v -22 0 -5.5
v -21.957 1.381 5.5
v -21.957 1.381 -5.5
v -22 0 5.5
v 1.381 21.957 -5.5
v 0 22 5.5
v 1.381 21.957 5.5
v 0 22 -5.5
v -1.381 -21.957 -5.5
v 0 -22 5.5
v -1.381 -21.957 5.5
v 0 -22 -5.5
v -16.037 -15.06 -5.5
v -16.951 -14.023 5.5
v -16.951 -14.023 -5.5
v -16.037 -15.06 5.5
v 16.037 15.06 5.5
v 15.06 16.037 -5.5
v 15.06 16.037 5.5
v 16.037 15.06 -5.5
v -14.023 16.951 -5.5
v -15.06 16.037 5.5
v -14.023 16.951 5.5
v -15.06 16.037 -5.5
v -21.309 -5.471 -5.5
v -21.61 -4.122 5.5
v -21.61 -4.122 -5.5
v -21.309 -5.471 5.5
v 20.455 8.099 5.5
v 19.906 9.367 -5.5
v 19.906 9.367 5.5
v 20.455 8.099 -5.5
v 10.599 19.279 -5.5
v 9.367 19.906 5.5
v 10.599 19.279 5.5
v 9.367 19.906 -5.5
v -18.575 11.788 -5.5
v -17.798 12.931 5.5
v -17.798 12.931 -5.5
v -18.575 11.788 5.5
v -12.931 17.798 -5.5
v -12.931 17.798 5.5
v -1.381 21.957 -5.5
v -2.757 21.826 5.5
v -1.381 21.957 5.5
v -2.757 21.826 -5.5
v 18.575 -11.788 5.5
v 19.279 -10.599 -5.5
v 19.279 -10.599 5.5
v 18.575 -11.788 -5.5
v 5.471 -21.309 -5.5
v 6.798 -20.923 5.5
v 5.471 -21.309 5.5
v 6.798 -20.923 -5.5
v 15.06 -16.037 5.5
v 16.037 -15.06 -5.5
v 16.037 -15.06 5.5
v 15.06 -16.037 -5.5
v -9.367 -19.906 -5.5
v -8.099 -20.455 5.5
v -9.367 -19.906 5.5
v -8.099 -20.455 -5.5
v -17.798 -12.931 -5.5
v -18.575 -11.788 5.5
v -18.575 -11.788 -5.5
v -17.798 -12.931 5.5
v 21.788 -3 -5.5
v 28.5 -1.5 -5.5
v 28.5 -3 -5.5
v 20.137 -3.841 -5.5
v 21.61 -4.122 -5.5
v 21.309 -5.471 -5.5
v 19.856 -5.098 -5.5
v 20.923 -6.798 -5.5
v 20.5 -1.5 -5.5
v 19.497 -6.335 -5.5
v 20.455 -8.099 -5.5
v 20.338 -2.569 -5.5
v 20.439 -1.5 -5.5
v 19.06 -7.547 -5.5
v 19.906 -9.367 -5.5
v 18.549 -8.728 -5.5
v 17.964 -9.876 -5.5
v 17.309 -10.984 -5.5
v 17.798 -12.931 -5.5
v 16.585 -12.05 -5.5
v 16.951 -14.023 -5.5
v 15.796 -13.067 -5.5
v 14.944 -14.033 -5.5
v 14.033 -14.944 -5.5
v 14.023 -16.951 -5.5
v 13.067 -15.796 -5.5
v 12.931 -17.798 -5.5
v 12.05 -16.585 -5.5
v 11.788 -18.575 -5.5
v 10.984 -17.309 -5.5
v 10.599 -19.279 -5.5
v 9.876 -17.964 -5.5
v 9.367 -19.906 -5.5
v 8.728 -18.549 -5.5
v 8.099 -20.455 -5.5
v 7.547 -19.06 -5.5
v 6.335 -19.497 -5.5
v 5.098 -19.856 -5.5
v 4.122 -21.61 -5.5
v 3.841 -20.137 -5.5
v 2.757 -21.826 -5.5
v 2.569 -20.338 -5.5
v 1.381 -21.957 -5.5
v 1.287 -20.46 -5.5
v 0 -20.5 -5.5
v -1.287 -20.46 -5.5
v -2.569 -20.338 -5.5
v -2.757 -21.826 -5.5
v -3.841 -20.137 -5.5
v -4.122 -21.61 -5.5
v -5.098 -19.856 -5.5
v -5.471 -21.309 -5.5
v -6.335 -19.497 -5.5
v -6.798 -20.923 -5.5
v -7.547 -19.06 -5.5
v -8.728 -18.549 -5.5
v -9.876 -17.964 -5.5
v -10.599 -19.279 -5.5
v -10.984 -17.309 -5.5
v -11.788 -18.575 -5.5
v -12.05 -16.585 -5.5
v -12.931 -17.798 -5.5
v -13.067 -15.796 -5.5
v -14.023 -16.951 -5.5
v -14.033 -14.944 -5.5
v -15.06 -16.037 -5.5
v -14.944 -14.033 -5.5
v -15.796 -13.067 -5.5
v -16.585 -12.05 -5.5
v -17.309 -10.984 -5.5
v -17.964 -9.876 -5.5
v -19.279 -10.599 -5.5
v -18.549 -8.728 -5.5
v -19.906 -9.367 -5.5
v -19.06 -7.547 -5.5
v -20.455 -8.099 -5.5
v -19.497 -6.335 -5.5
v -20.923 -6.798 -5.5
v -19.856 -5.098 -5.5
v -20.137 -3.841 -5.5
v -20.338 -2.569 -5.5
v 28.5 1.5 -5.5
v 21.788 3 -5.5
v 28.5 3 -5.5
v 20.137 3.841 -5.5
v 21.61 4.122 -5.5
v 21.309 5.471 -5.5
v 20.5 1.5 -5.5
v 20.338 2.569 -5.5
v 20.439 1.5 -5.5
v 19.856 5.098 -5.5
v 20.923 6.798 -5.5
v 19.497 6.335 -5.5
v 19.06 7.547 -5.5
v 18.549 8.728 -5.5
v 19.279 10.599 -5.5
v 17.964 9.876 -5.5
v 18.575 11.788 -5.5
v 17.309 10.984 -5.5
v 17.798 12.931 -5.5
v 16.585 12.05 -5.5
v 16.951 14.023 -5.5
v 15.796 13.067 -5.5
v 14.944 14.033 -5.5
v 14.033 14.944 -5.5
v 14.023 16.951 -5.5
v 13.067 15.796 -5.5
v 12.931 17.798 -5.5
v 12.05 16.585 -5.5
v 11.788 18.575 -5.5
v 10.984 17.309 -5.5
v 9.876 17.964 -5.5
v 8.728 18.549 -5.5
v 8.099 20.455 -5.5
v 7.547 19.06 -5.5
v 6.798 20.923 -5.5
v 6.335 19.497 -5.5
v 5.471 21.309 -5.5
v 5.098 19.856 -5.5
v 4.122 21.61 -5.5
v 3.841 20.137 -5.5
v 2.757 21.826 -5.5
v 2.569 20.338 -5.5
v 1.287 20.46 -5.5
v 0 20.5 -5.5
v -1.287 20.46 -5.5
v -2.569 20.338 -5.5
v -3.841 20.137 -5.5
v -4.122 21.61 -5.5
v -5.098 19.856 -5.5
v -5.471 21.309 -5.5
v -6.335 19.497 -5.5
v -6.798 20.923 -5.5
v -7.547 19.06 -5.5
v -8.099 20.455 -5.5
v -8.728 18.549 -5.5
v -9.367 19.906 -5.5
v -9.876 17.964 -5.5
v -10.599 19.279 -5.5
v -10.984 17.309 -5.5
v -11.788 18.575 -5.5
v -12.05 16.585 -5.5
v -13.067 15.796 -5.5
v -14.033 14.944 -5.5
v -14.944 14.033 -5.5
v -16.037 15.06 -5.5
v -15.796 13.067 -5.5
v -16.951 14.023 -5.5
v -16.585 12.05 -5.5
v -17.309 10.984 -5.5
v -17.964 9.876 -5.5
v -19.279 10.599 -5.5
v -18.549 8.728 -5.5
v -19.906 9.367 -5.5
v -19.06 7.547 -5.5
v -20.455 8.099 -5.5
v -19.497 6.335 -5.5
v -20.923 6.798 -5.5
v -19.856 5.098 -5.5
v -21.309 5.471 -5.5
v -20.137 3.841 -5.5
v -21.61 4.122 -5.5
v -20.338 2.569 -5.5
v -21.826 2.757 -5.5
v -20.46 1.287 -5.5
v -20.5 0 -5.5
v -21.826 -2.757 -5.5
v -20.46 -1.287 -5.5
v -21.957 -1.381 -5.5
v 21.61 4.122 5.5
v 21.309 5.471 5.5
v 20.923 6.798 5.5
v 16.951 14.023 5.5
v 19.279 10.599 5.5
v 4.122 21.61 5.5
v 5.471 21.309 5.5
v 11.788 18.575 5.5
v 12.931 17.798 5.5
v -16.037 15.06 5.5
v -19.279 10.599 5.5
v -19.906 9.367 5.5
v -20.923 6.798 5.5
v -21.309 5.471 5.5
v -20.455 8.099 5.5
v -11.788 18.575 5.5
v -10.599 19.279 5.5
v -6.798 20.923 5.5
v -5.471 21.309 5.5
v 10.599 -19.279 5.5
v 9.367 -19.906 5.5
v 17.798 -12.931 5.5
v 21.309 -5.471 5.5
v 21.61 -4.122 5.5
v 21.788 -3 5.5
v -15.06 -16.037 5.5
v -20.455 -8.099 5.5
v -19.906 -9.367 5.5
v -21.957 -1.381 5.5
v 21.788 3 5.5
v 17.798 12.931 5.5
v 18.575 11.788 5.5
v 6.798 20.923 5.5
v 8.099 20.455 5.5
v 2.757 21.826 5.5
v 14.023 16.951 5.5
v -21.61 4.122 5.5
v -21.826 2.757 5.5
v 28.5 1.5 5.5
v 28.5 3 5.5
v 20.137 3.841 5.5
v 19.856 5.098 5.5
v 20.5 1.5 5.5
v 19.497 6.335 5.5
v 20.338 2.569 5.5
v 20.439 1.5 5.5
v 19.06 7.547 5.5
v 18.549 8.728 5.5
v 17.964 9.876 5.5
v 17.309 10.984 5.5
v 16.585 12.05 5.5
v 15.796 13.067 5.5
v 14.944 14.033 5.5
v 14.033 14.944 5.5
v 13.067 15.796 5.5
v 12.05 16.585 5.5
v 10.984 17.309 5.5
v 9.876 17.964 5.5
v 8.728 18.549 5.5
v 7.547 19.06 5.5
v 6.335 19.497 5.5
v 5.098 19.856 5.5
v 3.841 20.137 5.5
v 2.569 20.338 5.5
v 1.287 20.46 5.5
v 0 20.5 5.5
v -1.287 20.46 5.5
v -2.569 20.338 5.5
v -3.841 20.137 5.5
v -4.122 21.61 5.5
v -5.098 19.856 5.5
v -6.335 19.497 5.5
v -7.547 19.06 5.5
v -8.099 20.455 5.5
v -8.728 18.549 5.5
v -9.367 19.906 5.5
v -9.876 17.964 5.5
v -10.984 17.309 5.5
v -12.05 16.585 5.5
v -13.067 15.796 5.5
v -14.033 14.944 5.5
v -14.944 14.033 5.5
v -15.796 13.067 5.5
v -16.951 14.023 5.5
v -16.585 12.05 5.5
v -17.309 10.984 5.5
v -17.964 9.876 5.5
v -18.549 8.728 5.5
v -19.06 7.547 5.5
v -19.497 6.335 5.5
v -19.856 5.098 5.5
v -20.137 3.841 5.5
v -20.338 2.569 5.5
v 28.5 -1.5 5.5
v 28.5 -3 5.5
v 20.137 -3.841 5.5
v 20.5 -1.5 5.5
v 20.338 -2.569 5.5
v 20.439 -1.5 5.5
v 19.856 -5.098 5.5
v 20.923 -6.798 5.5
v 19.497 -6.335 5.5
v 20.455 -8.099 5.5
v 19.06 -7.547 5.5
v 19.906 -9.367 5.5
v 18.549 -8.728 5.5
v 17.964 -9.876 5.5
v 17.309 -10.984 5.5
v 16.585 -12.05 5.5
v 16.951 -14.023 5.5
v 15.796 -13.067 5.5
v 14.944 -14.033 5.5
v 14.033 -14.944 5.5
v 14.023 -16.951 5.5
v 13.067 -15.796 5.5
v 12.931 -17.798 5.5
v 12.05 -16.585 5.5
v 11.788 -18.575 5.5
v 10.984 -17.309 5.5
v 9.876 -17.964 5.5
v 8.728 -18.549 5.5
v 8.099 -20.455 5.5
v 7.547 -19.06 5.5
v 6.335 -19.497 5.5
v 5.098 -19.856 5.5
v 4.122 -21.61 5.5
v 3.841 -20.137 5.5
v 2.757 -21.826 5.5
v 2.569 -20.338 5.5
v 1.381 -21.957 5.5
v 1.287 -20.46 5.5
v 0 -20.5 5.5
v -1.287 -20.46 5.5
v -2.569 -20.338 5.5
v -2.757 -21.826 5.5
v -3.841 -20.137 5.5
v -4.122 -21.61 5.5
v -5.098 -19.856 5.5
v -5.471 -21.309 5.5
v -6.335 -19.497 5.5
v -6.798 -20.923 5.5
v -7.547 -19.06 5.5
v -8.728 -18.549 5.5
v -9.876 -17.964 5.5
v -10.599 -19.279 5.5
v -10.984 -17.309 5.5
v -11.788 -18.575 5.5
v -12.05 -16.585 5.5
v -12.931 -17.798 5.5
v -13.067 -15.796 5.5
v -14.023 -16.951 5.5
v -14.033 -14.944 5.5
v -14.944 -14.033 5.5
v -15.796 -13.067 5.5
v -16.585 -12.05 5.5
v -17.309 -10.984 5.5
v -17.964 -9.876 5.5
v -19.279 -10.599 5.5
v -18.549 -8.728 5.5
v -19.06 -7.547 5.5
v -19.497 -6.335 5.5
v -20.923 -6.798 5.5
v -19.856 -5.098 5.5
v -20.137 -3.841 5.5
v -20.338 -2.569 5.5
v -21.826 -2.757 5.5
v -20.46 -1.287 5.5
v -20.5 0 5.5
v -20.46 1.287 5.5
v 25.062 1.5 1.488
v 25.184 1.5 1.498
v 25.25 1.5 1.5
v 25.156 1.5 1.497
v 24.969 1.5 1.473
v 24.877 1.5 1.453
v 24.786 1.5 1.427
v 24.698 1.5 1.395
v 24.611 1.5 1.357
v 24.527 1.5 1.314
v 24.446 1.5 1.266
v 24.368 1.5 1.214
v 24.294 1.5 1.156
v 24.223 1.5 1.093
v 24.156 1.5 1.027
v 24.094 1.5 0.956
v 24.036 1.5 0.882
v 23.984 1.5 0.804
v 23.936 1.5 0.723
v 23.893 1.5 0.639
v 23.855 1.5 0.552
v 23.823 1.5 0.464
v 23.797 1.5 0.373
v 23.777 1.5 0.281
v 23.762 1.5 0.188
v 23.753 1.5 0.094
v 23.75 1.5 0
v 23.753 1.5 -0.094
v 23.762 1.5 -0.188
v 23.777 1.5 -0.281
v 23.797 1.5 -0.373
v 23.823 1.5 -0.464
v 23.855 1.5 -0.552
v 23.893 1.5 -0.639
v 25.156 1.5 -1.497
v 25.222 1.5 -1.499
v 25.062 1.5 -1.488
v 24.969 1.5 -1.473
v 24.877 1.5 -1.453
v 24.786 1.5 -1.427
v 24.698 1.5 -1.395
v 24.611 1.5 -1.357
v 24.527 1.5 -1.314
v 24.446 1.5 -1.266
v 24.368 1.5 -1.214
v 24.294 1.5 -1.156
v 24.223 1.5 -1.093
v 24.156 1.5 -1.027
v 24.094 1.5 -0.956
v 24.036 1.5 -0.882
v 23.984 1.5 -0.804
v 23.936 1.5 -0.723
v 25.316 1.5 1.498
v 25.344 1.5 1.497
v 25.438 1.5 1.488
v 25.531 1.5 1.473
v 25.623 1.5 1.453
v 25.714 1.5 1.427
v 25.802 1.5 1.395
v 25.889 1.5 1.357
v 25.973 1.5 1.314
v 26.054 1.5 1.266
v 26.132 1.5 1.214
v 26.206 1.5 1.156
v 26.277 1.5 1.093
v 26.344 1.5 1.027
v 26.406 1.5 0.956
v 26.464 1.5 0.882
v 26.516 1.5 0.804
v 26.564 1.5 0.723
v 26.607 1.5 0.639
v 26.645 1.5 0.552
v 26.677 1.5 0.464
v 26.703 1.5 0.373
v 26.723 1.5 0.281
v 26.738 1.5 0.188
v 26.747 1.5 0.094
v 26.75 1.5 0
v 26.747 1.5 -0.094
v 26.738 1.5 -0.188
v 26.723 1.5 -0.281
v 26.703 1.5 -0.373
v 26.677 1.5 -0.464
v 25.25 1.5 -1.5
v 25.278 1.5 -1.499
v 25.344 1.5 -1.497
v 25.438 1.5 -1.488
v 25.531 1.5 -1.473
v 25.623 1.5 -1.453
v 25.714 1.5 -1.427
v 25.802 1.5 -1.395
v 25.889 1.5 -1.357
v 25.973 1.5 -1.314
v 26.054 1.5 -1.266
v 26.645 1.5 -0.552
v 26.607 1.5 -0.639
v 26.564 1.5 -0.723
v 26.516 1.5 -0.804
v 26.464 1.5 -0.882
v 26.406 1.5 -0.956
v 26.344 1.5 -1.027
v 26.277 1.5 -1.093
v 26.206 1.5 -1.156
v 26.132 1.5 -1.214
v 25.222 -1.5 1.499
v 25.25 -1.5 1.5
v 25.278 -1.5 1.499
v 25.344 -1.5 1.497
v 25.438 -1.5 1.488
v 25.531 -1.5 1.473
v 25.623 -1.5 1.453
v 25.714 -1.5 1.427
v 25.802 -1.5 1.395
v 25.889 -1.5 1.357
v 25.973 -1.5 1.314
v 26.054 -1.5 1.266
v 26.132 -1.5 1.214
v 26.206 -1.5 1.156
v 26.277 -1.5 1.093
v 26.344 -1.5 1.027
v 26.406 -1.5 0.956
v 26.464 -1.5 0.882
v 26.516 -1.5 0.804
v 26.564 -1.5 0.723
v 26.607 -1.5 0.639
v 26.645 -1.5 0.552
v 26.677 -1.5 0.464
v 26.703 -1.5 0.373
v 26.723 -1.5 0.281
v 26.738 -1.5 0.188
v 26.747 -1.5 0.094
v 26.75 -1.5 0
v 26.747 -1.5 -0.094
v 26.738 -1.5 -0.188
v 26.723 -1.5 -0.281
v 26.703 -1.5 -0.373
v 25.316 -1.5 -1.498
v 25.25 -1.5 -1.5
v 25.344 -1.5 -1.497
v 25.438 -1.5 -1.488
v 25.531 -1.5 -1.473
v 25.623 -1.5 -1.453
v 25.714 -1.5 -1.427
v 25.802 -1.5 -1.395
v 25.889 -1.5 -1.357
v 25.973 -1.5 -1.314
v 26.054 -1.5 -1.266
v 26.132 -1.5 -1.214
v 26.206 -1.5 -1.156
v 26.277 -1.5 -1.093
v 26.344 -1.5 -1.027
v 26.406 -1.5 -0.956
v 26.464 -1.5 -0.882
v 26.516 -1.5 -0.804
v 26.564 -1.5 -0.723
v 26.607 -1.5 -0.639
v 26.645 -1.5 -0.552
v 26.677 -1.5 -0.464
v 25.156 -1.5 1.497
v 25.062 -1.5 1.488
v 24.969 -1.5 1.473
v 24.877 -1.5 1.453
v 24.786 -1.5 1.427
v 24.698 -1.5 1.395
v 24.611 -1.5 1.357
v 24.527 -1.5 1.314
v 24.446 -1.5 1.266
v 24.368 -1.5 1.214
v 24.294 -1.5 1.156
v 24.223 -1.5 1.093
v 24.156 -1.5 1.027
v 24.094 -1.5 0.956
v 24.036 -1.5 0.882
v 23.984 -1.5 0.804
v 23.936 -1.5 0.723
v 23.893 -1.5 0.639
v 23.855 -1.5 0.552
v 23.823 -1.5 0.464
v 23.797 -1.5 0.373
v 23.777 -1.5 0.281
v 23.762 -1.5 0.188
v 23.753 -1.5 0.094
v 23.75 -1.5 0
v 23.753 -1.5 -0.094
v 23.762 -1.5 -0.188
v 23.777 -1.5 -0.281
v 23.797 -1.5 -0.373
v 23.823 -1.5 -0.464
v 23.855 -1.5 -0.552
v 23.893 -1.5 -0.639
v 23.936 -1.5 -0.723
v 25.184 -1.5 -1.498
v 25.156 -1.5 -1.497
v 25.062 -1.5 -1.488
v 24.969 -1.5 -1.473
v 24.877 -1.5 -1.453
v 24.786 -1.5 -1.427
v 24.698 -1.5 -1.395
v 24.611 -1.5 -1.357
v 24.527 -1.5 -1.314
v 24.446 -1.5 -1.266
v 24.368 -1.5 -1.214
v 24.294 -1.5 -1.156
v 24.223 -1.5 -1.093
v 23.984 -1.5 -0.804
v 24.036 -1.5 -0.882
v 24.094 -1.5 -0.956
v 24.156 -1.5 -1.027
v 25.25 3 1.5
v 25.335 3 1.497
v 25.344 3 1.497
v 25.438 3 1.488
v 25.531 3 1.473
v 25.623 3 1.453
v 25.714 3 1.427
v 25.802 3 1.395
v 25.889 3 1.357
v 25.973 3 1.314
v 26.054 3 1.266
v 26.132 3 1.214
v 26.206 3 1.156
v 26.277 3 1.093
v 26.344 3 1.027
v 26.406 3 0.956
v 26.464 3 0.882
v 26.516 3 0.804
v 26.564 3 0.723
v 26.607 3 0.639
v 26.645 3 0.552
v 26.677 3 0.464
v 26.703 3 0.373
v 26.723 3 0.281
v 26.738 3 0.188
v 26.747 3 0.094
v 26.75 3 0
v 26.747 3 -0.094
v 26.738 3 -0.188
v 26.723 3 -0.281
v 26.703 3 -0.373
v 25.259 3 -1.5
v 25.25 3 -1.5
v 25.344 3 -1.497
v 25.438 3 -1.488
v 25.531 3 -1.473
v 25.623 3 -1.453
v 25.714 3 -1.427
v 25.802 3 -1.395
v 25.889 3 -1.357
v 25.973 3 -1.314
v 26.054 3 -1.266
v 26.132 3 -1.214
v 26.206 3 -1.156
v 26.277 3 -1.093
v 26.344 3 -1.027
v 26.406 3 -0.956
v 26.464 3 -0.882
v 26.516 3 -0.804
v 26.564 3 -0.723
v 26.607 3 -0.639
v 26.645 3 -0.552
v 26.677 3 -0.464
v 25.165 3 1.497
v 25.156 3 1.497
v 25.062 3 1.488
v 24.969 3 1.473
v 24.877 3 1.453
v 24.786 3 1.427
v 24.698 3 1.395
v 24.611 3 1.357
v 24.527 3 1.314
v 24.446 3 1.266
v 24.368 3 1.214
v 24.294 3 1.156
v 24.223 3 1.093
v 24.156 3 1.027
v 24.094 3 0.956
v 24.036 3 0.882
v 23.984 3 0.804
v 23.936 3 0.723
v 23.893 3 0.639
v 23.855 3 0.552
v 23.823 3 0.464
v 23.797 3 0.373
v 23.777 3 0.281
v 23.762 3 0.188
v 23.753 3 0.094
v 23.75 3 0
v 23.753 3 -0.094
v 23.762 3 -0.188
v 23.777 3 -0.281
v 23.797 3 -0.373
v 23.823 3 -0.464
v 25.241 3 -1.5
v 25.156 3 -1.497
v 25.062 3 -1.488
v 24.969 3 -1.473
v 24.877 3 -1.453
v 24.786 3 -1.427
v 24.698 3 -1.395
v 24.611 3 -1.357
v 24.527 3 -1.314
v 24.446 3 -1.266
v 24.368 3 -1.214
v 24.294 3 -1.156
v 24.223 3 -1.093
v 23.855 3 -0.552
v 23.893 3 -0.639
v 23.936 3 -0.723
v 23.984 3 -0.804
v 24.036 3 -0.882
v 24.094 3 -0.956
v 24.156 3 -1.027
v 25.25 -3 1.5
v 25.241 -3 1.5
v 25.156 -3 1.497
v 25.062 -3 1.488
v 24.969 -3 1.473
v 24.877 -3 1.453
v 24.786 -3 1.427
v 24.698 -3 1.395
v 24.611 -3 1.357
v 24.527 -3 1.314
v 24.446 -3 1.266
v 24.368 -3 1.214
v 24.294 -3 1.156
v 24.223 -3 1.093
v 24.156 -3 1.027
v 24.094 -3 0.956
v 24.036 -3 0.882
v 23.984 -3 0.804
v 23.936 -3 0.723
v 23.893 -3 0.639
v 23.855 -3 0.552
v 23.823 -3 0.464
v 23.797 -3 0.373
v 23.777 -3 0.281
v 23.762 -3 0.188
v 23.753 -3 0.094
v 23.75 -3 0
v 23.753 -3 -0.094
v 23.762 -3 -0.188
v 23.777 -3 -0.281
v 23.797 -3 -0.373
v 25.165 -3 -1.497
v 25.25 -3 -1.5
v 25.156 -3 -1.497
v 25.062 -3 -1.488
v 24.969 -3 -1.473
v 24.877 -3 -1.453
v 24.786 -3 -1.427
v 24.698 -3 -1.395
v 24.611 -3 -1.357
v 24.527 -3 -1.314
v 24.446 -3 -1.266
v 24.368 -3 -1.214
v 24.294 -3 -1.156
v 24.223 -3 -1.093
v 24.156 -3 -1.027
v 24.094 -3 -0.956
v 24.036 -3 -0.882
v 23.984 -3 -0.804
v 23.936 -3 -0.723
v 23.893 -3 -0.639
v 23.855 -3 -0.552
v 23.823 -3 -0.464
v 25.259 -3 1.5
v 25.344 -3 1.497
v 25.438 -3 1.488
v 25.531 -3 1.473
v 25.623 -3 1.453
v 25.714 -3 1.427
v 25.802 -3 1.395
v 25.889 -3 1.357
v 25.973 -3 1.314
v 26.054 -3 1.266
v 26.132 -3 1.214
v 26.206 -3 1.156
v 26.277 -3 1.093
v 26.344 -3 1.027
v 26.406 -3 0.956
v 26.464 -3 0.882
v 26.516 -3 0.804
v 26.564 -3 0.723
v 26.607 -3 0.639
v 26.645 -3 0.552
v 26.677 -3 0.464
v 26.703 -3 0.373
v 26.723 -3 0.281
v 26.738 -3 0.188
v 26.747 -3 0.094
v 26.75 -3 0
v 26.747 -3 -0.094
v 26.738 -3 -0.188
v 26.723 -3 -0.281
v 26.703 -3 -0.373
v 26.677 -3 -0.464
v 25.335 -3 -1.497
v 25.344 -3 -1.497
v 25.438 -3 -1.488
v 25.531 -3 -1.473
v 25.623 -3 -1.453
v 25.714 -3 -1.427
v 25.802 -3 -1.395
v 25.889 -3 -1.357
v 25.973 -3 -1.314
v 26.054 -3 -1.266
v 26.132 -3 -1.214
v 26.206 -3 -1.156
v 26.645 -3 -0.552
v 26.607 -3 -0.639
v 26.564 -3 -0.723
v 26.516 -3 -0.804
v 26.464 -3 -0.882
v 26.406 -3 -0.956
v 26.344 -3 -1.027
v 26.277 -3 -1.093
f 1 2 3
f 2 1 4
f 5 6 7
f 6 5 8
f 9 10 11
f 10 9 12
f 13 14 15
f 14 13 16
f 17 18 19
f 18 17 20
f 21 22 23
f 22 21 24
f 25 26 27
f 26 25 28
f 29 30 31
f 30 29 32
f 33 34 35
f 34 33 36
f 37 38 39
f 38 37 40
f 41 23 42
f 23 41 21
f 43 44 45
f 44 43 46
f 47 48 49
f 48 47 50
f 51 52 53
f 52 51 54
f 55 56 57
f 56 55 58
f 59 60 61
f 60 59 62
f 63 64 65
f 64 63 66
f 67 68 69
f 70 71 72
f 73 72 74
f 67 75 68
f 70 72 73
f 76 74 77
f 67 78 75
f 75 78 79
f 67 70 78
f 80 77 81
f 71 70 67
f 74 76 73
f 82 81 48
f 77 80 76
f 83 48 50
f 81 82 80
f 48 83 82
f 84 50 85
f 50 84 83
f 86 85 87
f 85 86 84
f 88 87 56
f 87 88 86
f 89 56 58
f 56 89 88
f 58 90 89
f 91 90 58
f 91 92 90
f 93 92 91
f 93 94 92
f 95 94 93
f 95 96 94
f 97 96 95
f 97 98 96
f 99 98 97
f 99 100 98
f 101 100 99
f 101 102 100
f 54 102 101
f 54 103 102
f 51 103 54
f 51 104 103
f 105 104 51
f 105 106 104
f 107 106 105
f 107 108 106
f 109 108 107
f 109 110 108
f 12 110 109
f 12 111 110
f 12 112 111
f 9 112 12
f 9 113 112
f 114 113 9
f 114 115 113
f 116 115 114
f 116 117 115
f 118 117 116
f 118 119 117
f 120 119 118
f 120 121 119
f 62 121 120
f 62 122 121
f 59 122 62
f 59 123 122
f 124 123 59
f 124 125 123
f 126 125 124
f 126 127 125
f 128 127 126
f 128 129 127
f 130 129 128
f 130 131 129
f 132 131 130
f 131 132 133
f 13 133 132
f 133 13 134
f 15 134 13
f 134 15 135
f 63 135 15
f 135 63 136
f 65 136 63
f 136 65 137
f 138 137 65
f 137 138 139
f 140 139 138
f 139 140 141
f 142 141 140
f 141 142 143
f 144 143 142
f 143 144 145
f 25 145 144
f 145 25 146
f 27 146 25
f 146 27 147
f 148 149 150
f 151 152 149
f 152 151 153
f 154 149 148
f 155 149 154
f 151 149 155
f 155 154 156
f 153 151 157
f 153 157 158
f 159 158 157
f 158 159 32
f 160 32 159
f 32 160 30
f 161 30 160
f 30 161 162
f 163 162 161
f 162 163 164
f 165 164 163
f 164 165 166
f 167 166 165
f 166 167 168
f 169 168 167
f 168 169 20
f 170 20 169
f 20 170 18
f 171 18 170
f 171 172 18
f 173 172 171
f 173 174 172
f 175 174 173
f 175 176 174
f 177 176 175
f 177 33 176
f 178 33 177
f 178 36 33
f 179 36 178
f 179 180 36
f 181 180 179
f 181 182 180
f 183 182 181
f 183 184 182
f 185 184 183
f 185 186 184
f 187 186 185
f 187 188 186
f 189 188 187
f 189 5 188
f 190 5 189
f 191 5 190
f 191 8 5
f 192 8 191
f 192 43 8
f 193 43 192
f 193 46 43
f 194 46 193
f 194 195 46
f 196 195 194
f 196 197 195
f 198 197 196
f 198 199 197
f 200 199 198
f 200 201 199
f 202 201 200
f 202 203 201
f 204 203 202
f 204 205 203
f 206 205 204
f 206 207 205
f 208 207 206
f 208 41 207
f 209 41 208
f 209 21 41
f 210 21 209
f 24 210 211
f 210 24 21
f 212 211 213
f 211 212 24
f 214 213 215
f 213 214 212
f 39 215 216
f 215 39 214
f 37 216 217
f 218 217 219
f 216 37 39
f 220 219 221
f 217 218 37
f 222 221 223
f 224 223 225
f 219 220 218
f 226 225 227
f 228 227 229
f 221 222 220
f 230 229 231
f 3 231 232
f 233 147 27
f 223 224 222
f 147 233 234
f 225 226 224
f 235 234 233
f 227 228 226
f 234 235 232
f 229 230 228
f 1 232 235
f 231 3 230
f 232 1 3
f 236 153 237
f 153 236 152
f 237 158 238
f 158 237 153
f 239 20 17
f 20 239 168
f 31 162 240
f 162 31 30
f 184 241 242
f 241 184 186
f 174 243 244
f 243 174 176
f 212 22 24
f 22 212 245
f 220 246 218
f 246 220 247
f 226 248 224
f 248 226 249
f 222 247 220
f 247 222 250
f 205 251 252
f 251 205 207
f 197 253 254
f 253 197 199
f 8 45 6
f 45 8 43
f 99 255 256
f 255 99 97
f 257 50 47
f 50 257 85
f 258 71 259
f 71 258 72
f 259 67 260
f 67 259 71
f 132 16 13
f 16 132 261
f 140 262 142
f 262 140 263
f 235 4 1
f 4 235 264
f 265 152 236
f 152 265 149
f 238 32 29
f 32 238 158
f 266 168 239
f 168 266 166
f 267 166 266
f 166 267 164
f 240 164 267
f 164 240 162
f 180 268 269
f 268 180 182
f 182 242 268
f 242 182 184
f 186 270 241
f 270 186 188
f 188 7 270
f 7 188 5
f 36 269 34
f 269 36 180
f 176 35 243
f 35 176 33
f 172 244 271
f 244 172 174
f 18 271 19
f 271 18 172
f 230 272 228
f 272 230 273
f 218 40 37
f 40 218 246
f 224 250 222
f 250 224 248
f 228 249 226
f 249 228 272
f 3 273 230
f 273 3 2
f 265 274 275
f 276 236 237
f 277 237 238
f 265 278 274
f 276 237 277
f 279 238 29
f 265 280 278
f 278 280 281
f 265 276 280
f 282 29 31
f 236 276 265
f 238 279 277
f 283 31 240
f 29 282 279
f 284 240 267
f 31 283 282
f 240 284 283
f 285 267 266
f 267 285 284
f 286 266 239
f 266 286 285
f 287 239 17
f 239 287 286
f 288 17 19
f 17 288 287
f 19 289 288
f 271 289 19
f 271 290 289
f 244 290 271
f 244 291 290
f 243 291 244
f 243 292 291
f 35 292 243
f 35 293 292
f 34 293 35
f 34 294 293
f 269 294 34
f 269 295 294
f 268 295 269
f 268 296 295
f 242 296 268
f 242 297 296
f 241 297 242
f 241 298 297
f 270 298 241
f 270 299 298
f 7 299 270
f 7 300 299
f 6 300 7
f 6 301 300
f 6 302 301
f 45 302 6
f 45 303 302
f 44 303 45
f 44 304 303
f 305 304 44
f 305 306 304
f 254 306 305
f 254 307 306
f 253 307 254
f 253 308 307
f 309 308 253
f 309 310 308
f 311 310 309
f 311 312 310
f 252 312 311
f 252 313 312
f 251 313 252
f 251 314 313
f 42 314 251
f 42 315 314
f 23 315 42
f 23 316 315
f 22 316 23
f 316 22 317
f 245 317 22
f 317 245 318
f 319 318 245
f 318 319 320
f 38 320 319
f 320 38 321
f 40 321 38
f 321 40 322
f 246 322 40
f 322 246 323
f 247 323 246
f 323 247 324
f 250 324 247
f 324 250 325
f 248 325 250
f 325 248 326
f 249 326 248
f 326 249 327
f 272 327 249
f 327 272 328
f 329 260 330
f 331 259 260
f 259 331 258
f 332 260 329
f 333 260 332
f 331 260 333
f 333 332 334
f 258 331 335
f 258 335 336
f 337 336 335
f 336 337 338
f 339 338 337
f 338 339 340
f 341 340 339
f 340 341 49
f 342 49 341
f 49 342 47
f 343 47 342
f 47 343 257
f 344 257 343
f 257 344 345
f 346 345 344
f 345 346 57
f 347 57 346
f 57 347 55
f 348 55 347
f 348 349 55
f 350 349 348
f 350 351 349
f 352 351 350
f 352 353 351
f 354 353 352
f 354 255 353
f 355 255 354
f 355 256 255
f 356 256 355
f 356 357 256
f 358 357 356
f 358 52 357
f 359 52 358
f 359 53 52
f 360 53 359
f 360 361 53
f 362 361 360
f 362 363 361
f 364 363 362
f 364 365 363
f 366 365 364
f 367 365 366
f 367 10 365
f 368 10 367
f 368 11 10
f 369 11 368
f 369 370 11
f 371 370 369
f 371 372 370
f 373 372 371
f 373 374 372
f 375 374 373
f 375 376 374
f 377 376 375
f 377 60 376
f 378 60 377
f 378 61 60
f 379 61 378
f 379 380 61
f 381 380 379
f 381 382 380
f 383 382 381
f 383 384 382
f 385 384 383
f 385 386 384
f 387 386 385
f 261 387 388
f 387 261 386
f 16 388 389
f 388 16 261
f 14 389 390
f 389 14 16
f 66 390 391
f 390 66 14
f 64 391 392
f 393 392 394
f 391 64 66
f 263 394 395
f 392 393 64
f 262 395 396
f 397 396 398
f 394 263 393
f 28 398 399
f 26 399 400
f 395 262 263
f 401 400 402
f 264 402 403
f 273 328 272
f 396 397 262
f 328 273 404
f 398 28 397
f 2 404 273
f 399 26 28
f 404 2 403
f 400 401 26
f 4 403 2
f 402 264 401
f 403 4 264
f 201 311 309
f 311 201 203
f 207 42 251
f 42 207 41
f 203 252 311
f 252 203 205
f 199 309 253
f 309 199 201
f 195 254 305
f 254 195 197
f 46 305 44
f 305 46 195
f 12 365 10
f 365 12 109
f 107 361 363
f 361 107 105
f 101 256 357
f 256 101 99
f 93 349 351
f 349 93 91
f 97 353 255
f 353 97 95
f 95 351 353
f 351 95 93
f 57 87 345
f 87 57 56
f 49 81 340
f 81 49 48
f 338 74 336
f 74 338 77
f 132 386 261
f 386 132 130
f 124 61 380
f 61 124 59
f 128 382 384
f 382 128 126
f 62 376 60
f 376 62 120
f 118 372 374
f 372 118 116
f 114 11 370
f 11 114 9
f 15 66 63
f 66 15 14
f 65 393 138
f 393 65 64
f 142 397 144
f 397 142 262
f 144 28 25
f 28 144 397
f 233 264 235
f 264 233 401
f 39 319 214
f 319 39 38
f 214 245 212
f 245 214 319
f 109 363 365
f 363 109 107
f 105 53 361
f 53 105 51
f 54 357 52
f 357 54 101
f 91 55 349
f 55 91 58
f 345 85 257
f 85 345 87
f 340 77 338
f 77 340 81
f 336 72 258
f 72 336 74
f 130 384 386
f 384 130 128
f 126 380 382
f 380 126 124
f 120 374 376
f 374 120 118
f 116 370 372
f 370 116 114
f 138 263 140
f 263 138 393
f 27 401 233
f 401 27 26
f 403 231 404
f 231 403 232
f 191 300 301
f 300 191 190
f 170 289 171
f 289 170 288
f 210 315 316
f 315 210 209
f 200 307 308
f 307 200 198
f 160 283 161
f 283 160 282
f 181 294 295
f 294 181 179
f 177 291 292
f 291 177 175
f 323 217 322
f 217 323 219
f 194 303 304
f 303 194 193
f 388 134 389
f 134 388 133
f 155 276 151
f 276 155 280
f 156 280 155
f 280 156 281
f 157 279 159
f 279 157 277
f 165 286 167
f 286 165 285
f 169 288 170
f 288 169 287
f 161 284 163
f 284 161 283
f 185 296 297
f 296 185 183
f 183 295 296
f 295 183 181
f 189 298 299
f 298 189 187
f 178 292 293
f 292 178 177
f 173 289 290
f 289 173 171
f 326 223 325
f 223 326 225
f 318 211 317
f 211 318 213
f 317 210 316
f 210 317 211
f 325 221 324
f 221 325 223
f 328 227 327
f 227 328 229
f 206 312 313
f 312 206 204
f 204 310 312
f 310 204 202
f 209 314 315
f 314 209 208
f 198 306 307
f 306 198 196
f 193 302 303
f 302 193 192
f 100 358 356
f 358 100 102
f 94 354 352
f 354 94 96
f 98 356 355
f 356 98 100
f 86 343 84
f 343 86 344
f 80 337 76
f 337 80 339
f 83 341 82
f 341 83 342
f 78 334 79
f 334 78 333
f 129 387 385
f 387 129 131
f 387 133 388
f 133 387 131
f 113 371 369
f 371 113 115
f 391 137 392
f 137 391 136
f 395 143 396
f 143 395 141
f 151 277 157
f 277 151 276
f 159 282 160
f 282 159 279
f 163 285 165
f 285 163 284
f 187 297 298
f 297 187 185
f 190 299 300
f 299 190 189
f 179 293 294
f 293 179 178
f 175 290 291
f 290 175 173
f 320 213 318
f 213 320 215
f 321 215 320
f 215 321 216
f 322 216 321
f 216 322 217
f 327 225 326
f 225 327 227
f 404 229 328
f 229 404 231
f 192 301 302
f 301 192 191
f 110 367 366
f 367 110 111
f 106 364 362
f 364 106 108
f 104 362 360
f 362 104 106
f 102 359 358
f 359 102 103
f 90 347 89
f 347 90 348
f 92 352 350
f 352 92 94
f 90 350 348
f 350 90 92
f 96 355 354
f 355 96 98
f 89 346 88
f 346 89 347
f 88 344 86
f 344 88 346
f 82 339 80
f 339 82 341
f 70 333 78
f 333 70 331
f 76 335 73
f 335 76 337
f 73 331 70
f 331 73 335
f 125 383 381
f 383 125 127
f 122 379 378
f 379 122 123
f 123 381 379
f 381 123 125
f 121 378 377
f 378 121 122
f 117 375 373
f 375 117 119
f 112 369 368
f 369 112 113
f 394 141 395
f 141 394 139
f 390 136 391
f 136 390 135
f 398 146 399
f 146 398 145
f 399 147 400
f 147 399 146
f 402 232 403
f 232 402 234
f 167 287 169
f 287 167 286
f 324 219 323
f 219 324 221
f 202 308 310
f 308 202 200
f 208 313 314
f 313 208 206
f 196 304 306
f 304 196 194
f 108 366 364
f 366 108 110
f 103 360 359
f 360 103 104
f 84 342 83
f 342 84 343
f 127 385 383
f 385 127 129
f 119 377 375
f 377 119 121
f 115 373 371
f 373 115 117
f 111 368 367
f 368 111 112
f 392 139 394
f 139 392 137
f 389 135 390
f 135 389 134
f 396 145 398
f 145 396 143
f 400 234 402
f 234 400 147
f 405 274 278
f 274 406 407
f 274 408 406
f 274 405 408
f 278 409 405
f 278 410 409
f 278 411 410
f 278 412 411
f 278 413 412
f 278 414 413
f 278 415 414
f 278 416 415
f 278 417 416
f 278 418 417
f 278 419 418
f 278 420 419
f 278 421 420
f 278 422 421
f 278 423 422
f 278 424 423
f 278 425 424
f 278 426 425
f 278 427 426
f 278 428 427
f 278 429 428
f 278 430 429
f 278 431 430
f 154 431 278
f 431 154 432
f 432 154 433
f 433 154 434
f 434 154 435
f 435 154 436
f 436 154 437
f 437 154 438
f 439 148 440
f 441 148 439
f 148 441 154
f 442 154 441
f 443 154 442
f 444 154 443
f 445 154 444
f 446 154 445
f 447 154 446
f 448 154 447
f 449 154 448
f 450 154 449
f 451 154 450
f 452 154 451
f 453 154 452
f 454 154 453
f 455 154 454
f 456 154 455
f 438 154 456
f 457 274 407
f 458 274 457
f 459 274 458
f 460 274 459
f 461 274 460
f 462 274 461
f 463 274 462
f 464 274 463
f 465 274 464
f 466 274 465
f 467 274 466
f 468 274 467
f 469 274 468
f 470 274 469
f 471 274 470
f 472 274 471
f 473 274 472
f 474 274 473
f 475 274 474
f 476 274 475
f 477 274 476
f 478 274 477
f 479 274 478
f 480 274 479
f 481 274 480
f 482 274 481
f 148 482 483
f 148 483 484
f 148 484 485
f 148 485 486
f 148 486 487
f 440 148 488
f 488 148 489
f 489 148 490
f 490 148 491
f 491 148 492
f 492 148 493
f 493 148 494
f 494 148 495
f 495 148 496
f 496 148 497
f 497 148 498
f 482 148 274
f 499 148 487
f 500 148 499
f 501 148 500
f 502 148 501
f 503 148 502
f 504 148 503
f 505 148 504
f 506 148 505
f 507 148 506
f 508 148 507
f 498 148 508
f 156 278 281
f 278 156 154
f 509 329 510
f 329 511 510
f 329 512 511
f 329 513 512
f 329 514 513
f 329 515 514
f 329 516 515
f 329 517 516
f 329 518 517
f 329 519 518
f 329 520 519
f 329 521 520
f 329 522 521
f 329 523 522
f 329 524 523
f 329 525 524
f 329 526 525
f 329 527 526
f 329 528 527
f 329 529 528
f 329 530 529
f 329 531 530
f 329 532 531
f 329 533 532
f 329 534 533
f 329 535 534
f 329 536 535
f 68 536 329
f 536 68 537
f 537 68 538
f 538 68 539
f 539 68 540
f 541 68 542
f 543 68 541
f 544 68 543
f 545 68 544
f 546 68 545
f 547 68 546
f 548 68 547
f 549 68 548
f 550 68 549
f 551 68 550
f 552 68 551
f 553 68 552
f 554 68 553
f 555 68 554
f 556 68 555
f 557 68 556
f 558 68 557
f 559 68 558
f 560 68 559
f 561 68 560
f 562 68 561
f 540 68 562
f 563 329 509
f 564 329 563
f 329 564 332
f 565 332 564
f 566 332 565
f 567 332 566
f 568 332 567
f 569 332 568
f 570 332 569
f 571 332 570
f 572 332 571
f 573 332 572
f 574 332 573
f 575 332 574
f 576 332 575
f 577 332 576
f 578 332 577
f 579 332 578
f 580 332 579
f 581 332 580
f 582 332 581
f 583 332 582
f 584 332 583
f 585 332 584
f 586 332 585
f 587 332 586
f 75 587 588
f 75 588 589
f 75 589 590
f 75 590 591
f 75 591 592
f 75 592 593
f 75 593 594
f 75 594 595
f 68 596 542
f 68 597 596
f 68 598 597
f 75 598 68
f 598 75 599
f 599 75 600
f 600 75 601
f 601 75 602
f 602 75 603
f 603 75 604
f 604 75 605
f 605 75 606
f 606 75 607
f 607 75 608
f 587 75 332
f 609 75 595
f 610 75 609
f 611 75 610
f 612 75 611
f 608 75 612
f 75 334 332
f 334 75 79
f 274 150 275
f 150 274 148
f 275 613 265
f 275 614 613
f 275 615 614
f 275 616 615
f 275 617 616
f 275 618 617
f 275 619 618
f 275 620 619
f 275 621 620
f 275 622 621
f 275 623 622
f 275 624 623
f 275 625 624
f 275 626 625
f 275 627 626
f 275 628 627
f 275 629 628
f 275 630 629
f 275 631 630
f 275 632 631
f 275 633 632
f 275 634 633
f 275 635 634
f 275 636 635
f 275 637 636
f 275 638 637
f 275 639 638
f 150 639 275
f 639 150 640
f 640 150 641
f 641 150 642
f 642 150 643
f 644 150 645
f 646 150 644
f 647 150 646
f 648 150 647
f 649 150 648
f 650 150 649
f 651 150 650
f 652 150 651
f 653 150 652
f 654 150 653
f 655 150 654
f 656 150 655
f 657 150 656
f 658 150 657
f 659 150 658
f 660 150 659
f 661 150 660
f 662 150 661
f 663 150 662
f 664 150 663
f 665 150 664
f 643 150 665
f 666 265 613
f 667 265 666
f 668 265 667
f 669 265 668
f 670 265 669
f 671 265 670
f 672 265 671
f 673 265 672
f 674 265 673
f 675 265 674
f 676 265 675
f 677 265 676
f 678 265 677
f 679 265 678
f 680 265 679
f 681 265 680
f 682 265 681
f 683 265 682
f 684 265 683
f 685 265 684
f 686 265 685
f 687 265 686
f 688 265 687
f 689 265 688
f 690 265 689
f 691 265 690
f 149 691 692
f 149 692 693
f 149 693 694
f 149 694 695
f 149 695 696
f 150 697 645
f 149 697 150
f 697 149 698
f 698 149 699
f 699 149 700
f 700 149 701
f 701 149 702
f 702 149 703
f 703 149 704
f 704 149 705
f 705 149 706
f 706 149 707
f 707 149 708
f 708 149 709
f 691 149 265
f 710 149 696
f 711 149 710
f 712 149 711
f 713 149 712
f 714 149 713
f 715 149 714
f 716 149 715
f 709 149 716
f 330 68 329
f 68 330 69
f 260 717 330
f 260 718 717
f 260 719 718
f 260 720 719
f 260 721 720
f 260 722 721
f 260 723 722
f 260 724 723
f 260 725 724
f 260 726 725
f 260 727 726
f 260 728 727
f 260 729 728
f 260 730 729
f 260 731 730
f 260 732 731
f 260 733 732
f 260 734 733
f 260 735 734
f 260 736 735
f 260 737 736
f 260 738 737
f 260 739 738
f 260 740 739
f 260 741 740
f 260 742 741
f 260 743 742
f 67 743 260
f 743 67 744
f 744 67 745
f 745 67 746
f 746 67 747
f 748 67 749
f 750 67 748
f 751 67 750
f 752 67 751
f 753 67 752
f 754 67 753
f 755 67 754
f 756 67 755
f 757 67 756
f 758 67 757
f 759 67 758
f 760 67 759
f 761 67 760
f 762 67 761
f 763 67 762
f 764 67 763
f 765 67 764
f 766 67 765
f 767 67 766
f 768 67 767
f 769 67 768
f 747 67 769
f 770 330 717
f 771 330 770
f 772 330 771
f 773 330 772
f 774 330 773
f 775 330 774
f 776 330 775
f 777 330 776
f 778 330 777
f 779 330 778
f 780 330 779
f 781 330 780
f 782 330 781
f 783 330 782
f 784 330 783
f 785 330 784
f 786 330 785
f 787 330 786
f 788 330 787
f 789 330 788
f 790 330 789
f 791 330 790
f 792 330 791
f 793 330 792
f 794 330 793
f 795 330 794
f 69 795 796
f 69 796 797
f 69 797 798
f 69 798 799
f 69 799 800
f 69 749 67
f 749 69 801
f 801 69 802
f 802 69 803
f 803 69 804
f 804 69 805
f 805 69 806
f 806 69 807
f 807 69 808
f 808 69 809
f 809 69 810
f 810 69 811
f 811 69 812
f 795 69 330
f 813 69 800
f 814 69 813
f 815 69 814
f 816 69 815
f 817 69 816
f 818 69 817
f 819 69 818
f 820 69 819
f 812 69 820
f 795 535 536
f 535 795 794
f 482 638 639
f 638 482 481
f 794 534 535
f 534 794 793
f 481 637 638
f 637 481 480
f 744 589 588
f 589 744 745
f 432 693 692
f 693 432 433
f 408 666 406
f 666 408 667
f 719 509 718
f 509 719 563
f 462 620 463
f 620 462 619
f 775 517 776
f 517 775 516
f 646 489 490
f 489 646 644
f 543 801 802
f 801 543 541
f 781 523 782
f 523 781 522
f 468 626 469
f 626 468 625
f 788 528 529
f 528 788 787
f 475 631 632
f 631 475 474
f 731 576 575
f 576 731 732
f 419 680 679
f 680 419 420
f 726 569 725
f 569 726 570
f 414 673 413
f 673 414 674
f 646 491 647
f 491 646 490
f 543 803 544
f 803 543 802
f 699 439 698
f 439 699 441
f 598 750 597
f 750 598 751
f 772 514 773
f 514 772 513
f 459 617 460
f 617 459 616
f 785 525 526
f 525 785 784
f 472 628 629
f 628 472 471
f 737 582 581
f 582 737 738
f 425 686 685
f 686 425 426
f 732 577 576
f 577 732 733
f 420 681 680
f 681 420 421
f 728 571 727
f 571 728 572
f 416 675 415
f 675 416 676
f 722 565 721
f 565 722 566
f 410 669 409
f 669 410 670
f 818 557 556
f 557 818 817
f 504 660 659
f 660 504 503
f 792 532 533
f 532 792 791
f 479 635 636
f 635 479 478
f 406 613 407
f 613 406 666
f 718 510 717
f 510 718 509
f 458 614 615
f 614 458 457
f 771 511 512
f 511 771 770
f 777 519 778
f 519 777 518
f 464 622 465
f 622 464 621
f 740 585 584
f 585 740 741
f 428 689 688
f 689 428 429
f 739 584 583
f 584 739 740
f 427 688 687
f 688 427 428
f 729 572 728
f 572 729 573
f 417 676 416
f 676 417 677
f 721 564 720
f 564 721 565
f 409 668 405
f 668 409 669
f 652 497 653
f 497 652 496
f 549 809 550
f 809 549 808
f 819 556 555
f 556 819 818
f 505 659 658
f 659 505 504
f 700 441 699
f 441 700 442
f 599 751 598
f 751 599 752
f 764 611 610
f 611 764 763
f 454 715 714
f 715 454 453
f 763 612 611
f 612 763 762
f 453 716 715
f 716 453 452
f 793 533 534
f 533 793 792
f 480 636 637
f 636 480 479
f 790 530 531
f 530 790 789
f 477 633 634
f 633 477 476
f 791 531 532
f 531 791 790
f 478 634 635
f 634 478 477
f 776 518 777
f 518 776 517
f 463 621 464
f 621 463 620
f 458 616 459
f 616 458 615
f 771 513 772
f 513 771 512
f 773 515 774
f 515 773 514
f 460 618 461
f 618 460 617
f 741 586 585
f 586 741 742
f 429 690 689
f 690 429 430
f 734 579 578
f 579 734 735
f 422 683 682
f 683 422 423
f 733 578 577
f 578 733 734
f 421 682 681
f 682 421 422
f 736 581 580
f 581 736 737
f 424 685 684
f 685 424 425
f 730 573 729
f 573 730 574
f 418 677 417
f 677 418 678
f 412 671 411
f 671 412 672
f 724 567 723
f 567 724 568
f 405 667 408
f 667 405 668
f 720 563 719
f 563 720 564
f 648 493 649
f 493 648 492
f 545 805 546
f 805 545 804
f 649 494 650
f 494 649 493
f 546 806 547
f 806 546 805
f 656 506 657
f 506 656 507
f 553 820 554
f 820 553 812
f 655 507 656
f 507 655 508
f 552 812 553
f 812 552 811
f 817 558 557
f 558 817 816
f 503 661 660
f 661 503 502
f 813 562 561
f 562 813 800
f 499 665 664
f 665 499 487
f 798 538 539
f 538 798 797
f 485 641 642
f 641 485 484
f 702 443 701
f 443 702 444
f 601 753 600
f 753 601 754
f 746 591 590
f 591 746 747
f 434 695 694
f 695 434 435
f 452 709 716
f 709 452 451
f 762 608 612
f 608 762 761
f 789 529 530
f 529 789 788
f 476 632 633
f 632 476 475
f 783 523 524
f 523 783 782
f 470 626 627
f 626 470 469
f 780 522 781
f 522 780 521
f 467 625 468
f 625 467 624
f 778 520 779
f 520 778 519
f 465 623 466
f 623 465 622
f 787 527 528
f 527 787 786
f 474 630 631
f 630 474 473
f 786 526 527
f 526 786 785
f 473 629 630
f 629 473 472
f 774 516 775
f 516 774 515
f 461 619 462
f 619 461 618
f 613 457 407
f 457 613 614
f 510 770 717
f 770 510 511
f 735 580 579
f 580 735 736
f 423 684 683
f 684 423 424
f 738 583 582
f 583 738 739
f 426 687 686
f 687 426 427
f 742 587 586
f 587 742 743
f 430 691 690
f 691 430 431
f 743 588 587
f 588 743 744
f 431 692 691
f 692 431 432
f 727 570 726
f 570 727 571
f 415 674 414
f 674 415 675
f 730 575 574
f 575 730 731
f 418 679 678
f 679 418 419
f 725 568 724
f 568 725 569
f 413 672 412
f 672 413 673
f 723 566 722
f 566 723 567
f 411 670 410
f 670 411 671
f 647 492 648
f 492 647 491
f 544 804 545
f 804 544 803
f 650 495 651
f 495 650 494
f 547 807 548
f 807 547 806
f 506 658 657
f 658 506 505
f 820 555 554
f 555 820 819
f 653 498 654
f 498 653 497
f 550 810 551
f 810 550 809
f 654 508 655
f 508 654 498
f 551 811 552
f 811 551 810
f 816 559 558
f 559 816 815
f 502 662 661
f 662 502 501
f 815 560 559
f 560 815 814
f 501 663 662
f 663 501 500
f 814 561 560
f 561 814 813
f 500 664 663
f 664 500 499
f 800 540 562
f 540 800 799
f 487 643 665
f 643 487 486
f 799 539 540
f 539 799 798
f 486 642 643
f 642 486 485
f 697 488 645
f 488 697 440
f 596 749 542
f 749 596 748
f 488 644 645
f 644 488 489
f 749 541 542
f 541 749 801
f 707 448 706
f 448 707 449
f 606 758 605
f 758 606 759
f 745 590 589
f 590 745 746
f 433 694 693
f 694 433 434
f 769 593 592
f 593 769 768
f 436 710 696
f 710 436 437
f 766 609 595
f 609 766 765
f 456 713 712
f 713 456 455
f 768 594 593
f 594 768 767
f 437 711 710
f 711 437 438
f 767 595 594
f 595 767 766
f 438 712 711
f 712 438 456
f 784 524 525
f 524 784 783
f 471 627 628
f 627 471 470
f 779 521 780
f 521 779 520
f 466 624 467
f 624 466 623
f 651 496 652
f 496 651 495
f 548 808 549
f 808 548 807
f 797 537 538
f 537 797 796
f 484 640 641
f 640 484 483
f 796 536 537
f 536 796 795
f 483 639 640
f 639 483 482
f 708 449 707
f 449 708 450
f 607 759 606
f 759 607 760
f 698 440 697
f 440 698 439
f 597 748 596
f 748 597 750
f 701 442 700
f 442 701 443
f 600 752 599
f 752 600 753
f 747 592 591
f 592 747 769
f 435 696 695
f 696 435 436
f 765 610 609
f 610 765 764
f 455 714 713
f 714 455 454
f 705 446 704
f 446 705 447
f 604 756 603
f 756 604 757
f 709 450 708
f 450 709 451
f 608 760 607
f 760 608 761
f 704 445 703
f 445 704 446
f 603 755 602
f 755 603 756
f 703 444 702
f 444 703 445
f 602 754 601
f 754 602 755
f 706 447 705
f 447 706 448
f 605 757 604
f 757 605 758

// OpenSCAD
insideDiameter = 41;
thickness = 1.5;
height= 11;

screwHoldersLong = 8;
clampBlankSpace = thickness*3;
screwDiameter = 3;


$fn=100;
difference(){
    union(){
        difference(){
            cylinder(h=height, d=insideDiameter+thickness*2, center=true);
            cylinder(h=height, d=insideDiameter, center=true);
            translate([insideDiameter/2+0.5,0,0]){
                cube([thickness*2,thickness*2,height], center=true);
            }
        }
        translate([insideDiameter/2+screwHoldersLong/2,clampBlankSpace/2,0]){
            cube([screwHoldersLong,thickness,height], center=true);
        }
        translate([insideDiameter/2+screwHoldersLong/2,-clampBlankSpace/2,0]){
            cube([screwHoldersLong,thickness,height], center=true);
        }
    }

    translate([(insideDiameter+thickness+screwHoldersLong)/2,0,0]){
        rotate([90,0,0])cylinder(h=clampBlankSpace+thickness*2, d=screwDiameter, center=true);
    }
}
